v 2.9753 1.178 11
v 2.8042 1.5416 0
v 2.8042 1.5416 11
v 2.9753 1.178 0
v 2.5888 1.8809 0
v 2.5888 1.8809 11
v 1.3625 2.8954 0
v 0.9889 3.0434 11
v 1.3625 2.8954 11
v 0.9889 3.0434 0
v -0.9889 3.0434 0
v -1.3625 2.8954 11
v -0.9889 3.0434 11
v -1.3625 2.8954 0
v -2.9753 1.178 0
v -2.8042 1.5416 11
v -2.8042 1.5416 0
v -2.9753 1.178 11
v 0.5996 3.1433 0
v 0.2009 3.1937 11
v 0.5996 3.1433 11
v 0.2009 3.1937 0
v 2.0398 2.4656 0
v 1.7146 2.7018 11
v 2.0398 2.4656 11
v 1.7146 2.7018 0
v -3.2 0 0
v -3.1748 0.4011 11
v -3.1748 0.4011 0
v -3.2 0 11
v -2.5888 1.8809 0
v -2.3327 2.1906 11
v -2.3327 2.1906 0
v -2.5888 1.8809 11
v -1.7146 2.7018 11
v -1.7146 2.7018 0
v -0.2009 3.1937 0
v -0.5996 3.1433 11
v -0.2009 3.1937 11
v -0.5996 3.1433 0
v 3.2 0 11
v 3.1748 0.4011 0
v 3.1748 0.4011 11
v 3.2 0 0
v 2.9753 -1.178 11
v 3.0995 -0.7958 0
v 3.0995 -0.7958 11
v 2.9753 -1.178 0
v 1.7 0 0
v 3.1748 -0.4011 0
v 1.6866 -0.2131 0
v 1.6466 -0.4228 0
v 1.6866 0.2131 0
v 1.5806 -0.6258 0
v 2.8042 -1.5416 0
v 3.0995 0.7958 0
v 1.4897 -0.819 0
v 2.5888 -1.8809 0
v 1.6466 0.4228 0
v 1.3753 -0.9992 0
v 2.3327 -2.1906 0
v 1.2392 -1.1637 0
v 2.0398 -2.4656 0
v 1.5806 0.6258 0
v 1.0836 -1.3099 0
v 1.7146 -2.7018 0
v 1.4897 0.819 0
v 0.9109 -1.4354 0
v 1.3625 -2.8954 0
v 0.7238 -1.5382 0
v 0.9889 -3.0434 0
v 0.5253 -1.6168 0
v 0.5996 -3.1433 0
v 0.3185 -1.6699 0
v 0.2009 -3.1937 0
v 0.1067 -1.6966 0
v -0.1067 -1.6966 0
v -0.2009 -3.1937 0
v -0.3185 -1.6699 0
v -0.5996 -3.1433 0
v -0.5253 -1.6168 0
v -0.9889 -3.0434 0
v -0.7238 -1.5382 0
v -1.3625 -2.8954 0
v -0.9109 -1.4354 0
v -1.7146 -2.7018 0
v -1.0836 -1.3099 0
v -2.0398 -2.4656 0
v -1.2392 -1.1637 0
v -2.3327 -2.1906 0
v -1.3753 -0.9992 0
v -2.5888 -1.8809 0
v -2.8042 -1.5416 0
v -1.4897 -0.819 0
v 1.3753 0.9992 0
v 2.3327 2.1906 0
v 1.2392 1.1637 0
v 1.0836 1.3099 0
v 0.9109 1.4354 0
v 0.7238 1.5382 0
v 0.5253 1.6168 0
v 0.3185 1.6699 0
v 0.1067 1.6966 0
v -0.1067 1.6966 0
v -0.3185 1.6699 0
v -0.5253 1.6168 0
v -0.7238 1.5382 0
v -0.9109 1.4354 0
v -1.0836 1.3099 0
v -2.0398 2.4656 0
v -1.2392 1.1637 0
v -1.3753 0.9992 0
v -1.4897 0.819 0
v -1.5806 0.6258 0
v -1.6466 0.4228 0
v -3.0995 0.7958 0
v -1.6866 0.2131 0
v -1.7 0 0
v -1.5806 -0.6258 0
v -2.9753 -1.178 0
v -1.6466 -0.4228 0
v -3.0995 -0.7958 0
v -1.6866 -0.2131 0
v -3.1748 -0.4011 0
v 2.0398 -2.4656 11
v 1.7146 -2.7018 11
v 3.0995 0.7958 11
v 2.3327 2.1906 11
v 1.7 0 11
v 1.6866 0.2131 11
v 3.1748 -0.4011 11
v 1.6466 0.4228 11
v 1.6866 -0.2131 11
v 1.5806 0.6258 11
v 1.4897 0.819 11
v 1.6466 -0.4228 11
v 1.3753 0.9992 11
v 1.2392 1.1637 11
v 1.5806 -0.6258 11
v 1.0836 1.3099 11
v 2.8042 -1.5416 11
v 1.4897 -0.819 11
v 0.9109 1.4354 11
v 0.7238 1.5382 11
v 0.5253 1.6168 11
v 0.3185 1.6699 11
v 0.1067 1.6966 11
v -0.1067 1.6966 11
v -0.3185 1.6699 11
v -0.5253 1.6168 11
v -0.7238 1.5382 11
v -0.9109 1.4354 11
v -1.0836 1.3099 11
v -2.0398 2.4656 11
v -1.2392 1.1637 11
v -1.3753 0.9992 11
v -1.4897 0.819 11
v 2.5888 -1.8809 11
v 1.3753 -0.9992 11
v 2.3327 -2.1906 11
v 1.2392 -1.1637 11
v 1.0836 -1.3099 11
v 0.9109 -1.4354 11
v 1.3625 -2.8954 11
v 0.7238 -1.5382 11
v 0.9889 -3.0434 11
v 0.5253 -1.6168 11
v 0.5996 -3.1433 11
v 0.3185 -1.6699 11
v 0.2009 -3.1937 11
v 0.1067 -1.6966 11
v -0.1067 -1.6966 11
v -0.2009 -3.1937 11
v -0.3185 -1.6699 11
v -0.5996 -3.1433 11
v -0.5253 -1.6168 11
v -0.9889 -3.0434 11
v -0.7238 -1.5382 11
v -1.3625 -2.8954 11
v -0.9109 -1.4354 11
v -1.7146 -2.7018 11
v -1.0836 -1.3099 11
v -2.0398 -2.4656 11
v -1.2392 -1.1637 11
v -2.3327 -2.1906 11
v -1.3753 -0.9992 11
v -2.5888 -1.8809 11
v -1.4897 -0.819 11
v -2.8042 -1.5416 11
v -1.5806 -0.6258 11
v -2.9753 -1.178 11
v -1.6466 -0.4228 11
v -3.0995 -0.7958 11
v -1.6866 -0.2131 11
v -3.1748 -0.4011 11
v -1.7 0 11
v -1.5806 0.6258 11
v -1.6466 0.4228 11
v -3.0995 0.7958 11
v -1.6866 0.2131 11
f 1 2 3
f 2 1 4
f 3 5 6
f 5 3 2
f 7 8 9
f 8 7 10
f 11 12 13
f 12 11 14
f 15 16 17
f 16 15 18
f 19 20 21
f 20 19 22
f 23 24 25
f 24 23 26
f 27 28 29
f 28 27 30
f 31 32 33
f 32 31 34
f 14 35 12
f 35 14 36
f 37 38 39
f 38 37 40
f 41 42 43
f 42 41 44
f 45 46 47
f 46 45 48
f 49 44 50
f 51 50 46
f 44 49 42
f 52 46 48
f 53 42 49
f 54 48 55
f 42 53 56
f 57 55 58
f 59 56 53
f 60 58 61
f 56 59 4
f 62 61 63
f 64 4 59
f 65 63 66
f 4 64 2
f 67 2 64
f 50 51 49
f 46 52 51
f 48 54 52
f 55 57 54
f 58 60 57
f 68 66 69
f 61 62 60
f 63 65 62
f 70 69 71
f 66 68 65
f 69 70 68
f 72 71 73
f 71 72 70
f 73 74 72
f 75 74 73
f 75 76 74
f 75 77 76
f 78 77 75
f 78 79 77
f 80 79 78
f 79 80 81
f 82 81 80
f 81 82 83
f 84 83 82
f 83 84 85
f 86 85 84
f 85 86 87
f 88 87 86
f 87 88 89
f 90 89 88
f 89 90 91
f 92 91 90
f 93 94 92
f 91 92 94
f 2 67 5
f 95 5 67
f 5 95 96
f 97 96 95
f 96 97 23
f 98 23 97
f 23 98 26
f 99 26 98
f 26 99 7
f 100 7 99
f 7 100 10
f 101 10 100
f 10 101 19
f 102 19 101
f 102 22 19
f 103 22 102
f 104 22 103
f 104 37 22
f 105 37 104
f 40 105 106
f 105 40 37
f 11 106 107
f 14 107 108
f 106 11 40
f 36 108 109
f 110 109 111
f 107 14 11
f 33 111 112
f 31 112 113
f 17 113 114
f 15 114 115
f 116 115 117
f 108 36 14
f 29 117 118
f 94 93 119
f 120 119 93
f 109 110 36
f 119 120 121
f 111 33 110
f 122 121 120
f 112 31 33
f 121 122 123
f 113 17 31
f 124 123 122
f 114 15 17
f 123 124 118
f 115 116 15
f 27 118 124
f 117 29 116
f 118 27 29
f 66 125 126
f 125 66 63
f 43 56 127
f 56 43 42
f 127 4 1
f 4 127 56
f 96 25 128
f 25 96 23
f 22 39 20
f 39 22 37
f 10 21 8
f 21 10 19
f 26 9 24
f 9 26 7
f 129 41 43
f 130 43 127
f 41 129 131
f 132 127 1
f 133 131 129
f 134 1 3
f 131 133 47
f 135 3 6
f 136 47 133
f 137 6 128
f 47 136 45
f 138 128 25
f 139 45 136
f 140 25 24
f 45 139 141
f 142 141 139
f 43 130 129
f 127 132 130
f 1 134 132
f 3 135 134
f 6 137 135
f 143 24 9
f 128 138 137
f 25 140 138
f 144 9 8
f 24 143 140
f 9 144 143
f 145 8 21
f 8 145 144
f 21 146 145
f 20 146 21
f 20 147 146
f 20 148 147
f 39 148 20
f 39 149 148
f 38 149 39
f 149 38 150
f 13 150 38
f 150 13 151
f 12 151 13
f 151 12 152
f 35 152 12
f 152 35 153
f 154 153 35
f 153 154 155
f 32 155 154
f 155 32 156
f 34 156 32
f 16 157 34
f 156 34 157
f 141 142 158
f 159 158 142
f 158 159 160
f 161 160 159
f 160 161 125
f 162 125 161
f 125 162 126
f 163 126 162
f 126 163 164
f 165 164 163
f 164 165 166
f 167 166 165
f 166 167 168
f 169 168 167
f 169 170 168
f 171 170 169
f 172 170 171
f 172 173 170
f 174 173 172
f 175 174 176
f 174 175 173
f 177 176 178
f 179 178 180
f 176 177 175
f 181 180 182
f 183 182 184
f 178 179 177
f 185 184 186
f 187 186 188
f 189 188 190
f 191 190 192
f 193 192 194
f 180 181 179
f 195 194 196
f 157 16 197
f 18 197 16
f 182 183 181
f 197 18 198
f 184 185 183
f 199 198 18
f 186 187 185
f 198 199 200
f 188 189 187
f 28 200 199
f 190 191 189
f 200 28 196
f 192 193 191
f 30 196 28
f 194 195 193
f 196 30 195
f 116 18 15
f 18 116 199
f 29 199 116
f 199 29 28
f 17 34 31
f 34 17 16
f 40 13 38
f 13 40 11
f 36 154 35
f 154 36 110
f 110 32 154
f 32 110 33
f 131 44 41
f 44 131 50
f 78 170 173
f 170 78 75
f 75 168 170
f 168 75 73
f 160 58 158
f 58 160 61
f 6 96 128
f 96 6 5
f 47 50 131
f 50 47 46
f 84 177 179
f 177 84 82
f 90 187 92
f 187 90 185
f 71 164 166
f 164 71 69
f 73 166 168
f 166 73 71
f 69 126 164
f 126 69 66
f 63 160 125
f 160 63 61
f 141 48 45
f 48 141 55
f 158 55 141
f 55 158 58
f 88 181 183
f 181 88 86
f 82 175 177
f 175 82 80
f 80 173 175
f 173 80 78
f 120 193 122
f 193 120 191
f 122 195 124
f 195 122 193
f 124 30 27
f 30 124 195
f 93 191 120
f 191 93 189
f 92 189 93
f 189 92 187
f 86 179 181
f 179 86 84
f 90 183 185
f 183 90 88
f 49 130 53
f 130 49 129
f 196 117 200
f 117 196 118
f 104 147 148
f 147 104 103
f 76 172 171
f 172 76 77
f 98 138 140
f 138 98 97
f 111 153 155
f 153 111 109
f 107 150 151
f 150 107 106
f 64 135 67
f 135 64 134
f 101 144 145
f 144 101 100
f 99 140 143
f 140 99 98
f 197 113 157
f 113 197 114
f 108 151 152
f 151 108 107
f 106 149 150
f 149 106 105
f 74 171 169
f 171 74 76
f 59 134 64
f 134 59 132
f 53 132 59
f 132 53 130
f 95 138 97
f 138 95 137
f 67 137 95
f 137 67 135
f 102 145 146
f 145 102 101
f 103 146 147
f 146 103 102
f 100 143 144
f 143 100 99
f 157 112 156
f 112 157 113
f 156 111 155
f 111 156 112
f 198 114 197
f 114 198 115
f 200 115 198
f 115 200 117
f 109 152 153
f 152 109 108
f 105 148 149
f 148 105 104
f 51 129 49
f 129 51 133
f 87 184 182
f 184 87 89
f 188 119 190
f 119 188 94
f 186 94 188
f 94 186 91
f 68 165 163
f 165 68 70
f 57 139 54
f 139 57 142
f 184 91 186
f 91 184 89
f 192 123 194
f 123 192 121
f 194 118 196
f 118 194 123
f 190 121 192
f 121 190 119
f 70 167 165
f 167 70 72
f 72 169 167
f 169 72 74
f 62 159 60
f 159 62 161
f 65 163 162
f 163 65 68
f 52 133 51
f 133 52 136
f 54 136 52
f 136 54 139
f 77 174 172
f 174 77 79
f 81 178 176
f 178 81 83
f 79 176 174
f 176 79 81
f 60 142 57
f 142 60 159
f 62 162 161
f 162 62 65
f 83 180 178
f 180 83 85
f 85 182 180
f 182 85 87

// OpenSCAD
$fn = 50;

difference() {
    cylinder(11,3.2,3.2);
    cylinder(11,1.7,1.7);    
}
